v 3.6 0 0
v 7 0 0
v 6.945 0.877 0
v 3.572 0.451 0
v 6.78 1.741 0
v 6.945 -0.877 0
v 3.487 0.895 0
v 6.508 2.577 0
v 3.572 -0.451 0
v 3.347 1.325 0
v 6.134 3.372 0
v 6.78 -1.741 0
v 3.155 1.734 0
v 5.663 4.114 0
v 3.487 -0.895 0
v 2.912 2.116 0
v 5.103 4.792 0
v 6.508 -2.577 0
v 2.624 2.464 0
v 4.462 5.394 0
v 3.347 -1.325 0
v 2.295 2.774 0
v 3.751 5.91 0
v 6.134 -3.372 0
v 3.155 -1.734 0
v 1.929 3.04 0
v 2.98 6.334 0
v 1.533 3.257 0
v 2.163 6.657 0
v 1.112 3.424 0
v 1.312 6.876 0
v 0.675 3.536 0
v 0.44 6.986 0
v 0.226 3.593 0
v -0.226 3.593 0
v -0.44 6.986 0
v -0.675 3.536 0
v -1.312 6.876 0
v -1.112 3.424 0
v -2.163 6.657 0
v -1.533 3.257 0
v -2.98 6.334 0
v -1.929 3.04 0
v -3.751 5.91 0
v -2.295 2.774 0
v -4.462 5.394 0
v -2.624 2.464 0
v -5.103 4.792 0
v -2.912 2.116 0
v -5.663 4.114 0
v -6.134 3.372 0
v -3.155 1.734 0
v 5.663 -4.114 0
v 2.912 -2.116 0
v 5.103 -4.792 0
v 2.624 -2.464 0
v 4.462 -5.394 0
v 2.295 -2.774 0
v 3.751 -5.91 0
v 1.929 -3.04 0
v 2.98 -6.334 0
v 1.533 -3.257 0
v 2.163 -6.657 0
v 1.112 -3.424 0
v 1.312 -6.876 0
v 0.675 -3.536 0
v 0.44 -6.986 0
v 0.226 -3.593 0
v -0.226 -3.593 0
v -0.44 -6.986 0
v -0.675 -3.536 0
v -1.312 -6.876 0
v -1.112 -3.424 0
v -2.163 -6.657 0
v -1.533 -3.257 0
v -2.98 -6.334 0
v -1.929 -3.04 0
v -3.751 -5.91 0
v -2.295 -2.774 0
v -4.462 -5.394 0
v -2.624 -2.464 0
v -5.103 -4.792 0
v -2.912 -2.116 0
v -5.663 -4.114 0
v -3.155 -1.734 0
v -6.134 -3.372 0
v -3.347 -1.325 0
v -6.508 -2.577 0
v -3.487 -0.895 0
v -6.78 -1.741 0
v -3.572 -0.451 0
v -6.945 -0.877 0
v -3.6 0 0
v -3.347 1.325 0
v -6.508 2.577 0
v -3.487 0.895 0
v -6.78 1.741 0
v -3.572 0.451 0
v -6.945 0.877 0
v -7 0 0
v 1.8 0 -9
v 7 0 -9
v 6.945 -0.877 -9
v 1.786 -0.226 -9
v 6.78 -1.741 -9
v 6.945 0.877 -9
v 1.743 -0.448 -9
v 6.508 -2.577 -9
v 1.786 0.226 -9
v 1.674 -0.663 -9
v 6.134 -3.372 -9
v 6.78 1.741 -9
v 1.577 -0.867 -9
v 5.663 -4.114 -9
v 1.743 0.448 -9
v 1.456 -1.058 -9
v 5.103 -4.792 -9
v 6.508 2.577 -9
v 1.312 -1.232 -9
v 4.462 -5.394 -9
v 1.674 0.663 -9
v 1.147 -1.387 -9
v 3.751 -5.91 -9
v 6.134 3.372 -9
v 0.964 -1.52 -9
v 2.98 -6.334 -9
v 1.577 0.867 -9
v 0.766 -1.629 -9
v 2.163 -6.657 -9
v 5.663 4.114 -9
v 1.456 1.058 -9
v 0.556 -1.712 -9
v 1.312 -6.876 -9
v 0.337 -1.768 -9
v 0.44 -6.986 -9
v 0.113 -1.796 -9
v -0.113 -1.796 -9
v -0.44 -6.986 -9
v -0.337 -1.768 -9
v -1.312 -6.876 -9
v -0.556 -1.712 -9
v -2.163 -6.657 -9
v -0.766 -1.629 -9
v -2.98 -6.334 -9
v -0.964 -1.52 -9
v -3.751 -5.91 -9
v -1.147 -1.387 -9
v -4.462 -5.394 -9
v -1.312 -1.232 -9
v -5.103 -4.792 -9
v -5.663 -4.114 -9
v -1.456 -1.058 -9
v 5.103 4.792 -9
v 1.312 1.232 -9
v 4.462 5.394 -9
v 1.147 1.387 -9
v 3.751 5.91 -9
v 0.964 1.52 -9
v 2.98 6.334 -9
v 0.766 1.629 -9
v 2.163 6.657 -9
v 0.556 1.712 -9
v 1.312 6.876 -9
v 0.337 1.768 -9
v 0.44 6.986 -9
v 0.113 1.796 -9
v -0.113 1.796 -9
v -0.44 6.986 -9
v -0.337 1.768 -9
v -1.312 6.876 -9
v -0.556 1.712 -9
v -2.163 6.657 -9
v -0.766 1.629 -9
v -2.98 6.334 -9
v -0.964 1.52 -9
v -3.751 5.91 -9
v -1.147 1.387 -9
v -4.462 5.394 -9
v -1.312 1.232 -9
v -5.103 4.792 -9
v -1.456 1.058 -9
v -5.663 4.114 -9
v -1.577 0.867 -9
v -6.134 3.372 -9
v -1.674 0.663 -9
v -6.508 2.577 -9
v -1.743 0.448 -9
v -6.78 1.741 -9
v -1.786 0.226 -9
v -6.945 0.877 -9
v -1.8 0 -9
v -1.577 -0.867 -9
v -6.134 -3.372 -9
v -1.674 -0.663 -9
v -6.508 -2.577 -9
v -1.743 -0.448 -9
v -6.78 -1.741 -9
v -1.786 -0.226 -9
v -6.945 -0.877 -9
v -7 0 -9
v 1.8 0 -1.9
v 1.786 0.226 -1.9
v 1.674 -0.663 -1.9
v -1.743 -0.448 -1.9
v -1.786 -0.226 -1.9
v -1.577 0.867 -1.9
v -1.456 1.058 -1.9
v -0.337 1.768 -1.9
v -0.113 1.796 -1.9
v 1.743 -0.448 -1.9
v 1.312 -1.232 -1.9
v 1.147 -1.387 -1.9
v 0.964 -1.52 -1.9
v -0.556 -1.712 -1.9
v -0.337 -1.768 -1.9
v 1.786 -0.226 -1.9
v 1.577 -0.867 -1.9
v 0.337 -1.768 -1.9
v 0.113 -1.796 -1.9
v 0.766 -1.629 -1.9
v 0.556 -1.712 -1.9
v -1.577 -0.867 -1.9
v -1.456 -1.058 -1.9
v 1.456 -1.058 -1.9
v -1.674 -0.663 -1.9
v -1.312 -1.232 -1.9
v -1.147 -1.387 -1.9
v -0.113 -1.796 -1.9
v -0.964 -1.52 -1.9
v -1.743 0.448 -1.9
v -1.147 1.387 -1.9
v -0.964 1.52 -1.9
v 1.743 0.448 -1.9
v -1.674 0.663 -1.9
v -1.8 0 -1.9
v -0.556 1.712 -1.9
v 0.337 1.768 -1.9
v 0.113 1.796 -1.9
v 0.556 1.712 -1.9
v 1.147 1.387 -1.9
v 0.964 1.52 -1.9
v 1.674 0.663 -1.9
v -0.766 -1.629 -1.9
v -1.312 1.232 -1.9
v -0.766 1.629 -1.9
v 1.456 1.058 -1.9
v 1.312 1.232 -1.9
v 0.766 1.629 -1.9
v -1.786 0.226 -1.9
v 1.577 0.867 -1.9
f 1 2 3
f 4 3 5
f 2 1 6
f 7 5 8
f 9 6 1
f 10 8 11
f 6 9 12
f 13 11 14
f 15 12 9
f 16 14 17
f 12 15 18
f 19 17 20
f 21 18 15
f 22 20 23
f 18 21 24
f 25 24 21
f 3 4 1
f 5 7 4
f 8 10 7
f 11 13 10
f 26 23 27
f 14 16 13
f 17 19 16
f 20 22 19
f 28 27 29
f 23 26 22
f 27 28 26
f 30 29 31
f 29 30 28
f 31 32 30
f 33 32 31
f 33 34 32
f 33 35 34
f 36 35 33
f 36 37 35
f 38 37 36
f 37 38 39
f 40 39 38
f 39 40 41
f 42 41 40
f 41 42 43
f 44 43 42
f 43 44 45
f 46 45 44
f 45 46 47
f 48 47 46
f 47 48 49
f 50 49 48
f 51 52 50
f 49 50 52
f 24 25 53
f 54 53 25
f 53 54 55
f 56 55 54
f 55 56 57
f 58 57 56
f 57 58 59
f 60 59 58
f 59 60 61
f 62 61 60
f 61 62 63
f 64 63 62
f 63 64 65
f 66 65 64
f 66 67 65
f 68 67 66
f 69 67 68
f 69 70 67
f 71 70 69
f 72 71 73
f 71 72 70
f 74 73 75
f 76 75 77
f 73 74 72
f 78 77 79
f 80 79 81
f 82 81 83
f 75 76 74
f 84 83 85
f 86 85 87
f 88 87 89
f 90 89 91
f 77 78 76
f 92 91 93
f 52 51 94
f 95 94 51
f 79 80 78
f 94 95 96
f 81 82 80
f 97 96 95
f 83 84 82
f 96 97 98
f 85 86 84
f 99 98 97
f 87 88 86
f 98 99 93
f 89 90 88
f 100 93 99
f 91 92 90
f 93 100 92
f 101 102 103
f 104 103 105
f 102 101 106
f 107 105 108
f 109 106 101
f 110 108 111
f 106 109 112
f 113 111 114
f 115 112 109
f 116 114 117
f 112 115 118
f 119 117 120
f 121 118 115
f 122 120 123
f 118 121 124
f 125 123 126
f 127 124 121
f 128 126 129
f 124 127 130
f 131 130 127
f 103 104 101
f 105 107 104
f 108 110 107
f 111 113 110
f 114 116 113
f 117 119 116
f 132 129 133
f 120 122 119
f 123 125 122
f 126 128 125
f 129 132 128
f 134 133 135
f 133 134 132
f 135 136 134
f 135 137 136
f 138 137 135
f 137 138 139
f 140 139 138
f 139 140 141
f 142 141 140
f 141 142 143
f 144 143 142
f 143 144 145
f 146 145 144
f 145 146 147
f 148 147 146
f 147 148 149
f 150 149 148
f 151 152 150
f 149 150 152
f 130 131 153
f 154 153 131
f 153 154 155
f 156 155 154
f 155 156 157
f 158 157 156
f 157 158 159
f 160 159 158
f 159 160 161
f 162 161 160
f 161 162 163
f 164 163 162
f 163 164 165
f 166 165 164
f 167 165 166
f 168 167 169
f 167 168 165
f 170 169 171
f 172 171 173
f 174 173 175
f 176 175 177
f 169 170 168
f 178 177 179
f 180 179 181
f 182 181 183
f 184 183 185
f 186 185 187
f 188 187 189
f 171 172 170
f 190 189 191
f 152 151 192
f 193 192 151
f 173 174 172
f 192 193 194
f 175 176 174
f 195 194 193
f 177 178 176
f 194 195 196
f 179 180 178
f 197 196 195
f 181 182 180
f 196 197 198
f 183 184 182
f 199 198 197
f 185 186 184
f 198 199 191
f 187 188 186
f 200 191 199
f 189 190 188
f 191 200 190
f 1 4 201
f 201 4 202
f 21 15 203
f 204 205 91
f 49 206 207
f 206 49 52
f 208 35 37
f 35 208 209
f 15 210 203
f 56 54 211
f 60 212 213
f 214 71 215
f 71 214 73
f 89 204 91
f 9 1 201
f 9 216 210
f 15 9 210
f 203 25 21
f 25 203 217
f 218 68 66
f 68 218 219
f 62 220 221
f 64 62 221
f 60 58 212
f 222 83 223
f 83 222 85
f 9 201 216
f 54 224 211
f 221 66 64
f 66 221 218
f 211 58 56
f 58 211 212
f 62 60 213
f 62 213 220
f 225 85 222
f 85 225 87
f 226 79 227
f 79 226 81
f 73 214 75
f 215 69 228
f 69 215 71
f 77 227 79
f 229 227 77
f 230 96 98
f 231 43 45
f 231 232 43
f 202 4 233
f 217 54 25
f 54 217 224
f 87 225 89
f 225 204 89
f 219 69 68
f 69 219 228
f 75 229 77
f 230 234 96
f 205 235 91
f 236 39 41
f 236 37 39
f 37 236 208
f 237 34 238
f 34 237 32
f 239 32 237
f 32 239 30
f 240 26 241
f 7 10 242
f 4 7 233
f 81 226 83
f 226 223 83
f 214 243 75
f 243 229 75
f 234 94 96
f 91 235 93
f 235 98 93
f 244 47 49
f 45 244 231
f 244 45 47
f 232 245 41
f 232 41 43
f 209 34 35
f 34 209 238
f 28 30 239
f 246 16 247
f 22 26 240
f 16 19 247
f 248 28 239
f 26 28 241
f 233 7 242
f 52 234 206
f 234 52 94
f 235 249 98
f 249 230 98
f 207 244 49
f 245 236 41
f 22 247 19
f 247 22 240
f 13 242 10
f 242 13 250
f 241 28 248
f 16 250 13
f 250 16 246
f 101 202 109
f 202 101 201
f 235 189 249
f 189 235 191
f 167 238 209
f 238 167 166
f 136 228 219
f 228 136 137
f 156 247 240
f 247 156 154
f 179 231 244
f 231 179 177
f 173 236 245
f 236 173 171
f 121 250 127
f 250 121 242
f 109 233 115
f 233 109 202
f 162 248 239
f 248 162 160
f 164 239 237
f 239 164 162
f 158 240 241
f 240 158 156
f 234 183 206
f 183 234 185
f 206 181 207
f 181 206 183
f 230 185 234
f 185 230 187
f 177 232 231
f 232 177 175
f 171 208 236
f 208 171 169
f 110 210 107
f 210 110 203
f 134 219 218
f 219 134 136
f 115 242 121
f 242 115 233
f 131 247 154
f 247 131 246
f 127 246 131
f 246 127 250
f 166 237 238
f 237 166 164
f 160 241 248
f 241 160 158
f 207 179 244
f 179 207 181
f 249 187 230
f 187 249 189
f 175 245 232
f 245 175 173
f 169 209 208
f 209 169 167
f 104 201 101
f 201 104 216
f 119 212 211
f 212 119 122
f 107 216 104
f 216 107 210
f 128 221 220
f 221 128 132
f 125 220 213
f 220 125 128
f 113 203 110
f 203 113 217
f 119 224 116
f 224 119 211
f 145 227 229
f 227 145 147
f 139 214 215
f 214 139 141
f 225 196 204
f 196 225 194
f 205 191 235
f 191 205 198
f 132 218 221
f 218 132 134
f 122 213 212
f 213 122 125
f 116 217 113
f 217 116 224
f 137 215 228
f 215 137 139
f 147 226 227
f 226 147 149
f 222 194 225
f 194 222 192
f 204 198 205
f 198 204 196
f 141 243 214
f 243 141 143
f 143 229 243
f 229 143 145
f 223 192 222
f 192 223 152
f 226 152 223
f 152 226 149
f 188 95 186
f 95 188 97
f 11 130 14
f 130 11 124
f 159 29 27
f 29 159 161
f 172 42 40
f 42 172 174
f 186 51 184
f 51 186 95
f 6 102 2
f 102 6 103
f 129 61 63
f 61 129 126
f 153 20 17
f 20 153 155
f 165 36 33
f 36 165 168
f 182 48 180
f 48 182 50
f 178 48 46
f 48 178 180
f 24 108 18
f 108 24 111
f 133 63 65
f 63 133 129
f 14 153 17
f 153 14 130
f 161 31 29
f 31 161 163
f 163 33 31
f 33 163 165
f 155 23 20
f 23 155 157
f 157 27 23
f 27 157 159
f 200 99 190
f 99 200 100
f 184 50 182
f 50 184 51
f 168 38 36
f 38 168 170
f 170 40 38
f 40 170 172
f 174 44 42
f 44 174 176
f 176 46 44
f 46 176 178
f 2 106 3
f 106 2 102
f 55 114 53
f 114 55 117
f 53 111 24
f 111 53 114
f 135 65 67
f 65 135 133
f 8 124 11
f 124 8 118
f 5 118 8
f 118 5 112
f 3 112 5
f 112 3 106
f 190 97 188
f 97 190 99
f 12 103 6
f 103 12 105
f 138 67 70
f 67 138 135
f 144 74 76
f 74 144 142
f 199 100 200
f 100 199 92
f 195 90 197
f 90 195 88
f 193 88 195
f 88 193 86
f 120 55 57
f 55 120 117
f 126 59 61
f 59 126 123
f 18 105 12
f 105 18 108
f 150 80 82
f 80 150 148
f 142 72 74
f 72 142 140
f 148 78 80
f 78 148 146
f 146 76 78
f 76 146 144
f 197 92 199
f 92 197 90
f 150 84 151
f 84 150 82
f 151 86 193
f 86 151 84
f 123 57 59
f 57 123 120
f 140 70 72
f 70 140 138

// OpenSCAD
$fn = 50;


difference() {
	union() {
		translate(v = [0, 0, -9.0000000000]) {
			cylinder(h = 9, r = 7.0000000000);
		}
	}
	union() {
		translate(v = [0, 0, 0]) {
			rotate(a = [0, 0, 0]) {
				difference() {
					union() {
						#translate(v = [0, 0, -9.0000000000]) {
							cylinder(h = 9, r = 1.5000000000);
						}
						#translate(v = [0, 0, -1.9000000000]) {
							cylinder(h = 1.9000000000, r1 = 1.8000000000, r2 = 3.6000000000);
						}
						#translate(v = [0, 0, -9.0000000000]) {
							cylinder(h = 9, r = 1.8000000000);
						}
						#translate(v = [0, 0, -9.0000000000]) {
							cylinder(h = 9, r = 1.5000000000);
						}
					}
					union();
				}
			}
		}
	}
}
